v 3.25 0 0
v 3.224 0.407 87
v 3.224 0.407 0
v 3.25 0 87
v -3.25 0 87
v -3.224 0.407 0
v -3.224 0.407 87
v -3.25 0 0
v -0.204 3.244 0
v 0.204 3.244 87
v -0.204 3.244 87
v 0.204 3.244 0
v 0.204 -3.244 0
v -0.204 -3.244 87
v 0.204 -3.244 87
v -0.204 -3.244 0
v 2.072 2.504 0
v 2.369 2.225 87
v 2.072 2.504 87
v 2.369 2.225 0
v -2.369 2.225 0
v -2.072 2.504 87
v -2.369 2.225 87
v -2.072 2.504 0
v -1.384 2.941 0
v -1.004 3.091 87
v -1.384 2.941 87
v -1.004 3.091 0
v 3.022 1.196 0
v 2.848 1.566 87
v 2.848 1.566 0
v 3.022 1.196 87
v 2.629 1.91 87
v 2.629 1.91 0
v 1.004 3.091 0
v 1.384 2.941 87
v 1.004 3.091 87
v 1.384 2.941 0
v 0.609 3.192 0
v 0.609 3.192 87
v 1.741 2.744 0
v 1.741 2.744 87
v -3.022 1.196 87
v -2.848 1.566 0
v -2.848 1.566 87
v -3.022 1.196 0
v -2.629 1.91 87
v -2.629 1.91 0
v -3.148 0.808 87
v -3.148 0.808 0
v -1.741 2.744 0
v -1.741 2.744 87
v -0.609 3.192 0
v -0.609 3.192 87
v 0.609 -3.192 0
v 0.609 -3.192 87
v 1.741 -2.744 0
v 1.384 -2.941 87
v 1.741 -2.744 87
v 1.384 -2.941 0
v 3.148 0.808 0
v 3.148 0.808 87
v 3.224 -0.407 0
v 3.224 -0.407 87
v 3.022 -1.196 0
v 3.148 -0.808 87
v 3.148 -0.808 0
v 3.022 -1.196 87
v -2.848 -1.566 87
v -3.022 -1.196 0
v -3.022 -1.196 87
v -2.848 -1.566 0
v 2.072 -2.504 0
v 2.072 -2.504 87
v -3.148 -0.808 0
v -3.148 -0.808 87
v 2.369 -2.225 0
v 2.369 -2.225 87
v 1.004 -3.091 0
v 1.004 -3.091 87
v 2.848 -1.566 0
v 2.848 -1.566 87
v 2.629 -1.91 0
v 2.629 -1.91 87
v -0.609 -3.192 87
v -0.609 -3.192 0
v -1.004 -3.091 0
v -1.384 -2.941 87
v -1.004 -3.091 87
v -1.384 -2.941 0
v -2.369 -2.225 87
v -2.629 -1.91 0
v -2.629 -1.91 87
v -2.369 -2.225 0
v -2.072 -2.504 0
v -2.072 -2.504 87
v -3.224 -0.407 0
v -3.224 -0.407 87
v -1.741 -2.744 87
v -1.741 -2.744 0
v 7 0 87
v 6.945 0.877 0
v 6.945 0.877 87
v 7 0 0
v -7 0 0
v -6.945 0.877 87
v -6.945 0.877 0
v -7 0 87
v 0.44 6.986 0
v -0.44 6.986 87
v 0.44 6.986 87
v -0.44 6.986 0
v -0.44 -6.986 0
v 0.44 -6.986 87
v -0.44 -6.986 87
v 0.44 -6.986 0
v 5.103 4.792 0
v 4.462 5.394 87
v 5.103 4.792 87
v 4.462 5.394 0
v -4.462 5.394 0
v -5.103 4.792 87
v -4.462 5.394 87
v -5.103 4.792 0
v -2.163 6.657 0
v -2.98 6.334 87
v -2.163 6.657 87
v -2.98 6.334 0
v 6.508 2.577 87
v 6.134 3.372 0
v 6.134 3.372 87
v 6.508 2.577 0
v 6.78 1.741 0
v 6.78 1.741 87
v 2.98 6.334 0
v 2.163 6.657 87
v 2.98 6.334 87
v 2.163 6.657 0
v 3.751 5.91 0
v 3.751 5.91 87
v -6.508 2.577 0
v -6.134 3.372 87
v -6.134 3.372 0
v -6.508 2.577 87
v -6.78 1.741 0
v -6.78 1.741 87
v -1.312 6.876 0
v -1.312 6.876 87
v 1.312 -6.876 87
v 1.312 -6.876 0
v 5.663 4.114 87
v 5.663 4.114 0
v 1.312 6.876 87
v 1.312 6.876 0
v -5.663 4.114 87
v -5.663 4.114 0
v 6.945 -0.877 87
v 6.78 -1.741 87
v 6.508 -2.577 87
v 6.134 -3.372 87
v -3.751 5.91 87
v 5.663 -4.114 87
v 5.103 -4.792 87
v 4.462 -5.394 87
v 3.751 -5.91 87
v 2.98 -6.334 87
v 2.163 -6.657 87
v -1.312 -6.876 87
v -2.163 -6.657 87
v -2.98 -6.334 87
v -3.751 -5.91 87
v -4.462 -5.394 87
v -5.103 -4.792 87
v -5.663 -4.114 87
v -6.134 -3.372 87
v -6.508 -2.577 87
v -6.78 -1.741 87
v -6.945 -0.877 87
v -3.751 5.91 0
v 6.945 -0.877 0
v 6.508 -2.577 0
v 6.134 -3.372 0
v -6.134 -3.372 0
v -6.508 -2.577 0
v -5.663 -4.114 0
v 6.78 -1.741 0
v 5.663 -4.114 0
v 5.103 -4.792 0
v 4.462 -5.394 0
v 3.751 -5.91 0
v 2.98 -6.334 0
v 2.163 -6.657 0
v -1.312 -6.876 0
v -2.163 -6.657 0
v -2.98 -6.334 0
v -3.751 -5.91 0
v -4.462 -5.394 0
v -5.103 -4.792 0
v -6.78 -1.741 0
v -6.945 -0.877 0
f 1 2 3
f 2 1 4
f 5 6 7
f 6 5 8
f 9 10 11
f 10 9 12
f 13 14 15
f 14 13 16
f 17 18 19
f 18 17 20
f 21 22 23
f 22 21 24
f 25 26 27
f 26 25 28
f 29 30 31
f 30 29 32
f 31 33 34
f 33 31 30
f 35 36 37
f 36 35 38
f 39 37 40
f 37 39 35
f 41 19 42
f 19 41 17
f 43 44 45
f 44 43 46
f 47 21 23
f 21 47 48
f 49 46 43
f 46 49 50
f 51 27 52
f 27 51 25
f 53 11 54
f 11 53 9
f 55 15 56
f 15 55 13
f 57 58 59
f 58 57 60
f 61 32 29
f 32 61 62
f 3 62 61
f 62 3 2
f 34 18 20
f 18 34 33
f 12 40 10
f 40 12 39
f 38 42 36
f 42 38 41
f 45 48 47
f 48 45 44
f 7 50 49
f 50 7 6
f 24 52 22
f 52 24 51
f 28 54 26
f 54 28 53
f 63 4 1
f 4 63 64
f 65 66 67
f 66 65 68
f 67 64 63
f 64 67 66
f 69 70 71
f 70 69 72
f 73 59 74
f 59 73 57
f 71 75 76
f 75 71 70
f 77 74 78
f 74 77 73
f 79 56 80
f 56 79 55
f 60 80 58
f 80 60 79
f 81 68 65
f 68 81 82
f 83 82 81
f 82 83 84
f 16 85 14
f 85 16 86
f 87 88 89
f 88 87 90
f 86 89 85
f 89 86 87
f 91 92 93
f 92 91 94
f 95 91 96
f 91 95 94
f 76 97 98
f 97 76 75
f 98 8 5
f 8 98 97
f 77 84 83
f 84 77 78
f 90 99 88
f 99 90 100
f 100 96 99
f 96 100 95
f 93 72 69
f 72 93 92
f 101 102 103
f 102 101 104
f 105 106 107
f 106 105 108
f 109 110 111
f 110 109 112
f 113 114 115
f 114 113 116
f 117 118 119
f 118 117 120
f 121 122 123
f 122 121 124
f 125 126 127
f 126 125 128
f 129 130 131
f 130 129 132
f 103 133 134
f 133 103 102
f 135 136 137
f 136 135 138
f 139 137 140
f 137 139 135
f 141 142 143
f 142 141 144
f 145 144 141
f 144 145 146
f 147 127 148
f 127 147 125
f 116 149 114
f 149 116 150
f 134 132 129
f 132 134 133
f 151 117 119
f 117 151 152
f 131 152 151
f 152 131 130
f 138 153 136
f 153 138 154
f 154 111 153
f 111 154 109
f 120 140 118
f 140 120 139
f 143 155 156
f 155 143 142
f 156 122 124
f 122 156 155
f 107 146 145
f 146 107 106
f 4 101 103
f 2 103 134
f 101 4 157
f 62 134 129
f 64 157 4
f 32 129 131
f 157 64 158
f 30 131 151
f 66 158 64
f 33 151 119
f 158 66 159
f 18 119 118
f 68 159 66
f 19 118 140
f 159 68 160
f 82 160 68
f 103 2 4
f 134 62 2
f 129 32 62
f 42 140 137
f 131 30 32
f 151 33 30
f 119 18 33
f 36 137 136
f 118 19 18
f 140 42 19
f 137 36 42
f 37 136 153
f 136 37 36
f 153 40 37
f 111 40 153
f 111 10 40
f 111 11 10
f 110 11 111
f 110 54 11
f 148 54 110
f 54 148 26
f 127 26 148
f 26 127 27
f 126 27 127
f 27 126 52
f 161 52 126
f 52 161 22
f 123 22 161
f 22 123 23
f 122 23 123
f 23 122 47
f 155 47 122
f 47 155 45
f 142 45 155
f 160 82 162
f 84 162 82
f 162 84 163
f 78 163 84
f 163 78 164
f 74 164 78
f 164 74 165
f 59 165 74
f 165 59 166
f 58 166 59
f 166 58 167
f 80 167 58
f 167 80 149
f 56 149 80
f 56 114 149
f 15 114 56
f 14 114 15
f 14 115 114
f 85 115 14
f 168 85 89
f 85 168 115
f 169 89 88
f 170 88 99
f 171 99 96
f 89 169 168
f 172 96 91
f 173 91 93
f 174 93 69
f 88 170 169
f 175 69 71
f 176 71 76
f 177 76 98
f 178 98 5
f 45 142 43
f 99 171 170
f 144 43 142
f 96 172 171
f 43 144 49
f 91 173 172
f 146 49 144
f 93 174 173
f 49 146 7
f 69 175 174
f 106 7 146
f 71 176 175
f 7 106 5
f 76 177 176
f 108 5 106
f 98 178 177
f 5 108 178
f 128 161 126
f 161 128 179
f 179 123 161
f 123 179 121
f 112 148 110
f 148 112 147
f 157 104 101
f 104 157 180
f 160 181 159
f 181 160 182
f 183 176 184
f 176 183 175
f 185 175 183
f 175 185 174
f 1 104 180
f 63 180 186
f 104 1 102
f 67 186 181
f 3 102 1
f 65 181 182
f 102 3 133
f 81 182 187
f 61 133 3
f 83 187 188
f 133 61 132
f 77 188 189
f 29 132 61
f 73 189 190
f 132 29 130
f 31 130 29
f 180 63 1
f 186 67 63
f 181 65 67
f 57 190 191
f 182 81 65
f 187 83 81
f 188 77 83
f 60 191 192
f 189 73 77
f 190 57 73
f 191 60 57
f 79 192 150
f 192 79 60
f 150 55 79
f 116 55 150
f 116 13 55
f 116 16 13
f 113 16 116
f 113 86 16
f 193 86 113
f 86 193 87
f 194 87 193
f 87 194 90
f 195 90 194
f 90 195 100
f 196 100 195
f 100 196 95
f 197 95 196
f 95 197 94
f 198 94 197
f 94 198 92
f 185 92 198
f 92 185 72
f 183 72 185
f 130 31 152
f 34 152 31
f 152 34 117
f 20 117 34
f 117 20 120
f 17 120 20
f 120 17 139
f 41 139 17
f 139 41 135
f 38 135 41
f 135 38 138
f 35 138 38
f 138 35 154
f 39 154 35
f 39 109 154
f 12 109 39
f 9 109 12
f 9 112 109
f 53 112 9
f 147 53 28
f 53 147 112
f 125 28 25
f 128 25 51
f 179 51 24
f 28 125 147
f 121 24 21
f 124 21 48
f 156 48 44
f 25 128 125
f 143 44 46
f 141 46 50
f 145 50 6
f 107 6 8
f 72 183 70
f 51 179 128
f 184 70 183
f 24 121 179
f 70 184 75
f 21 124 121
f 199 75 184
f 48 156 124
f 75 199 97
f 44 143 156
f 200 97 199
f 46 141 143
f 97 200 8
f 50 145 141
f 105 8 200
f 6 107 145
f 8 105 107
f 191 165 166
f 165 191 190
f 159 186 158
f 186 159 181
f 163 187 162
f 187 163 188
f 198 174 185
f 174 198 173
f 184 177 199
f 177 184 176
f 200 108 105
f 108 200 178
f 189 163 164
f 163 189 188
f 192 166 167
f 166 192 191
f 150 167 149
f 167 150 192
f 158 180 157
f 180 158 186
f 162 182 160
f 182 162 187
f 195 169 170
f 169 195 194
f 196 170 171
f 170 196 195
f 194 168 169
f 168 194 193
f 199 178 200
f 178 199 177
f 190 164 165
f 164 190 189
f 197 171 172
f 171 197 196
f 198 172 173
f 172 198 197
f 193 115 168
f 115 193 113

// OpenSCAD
$fn = 50;


difference() {
	union() {
		cylinder(h = 87, r = 7.0000000000);
	}
	union() {
		cylinder(h = 87, r = 3.2500000000);
		cylinder(h = 87, r = 3.2500000000);
		cylinder(h = 87, r = 1.8000000000);
		cylinder(h = 87, r = 1.8000000000);
		cylinder(h = 87, r = 1.8000000000);
		cylinder(h = 87, r = 1.8000000000);
		cylinder(h = 87, r = 1.8000000000);
		cylinder(h = 87, r = 1.8000000000);
	}
}
